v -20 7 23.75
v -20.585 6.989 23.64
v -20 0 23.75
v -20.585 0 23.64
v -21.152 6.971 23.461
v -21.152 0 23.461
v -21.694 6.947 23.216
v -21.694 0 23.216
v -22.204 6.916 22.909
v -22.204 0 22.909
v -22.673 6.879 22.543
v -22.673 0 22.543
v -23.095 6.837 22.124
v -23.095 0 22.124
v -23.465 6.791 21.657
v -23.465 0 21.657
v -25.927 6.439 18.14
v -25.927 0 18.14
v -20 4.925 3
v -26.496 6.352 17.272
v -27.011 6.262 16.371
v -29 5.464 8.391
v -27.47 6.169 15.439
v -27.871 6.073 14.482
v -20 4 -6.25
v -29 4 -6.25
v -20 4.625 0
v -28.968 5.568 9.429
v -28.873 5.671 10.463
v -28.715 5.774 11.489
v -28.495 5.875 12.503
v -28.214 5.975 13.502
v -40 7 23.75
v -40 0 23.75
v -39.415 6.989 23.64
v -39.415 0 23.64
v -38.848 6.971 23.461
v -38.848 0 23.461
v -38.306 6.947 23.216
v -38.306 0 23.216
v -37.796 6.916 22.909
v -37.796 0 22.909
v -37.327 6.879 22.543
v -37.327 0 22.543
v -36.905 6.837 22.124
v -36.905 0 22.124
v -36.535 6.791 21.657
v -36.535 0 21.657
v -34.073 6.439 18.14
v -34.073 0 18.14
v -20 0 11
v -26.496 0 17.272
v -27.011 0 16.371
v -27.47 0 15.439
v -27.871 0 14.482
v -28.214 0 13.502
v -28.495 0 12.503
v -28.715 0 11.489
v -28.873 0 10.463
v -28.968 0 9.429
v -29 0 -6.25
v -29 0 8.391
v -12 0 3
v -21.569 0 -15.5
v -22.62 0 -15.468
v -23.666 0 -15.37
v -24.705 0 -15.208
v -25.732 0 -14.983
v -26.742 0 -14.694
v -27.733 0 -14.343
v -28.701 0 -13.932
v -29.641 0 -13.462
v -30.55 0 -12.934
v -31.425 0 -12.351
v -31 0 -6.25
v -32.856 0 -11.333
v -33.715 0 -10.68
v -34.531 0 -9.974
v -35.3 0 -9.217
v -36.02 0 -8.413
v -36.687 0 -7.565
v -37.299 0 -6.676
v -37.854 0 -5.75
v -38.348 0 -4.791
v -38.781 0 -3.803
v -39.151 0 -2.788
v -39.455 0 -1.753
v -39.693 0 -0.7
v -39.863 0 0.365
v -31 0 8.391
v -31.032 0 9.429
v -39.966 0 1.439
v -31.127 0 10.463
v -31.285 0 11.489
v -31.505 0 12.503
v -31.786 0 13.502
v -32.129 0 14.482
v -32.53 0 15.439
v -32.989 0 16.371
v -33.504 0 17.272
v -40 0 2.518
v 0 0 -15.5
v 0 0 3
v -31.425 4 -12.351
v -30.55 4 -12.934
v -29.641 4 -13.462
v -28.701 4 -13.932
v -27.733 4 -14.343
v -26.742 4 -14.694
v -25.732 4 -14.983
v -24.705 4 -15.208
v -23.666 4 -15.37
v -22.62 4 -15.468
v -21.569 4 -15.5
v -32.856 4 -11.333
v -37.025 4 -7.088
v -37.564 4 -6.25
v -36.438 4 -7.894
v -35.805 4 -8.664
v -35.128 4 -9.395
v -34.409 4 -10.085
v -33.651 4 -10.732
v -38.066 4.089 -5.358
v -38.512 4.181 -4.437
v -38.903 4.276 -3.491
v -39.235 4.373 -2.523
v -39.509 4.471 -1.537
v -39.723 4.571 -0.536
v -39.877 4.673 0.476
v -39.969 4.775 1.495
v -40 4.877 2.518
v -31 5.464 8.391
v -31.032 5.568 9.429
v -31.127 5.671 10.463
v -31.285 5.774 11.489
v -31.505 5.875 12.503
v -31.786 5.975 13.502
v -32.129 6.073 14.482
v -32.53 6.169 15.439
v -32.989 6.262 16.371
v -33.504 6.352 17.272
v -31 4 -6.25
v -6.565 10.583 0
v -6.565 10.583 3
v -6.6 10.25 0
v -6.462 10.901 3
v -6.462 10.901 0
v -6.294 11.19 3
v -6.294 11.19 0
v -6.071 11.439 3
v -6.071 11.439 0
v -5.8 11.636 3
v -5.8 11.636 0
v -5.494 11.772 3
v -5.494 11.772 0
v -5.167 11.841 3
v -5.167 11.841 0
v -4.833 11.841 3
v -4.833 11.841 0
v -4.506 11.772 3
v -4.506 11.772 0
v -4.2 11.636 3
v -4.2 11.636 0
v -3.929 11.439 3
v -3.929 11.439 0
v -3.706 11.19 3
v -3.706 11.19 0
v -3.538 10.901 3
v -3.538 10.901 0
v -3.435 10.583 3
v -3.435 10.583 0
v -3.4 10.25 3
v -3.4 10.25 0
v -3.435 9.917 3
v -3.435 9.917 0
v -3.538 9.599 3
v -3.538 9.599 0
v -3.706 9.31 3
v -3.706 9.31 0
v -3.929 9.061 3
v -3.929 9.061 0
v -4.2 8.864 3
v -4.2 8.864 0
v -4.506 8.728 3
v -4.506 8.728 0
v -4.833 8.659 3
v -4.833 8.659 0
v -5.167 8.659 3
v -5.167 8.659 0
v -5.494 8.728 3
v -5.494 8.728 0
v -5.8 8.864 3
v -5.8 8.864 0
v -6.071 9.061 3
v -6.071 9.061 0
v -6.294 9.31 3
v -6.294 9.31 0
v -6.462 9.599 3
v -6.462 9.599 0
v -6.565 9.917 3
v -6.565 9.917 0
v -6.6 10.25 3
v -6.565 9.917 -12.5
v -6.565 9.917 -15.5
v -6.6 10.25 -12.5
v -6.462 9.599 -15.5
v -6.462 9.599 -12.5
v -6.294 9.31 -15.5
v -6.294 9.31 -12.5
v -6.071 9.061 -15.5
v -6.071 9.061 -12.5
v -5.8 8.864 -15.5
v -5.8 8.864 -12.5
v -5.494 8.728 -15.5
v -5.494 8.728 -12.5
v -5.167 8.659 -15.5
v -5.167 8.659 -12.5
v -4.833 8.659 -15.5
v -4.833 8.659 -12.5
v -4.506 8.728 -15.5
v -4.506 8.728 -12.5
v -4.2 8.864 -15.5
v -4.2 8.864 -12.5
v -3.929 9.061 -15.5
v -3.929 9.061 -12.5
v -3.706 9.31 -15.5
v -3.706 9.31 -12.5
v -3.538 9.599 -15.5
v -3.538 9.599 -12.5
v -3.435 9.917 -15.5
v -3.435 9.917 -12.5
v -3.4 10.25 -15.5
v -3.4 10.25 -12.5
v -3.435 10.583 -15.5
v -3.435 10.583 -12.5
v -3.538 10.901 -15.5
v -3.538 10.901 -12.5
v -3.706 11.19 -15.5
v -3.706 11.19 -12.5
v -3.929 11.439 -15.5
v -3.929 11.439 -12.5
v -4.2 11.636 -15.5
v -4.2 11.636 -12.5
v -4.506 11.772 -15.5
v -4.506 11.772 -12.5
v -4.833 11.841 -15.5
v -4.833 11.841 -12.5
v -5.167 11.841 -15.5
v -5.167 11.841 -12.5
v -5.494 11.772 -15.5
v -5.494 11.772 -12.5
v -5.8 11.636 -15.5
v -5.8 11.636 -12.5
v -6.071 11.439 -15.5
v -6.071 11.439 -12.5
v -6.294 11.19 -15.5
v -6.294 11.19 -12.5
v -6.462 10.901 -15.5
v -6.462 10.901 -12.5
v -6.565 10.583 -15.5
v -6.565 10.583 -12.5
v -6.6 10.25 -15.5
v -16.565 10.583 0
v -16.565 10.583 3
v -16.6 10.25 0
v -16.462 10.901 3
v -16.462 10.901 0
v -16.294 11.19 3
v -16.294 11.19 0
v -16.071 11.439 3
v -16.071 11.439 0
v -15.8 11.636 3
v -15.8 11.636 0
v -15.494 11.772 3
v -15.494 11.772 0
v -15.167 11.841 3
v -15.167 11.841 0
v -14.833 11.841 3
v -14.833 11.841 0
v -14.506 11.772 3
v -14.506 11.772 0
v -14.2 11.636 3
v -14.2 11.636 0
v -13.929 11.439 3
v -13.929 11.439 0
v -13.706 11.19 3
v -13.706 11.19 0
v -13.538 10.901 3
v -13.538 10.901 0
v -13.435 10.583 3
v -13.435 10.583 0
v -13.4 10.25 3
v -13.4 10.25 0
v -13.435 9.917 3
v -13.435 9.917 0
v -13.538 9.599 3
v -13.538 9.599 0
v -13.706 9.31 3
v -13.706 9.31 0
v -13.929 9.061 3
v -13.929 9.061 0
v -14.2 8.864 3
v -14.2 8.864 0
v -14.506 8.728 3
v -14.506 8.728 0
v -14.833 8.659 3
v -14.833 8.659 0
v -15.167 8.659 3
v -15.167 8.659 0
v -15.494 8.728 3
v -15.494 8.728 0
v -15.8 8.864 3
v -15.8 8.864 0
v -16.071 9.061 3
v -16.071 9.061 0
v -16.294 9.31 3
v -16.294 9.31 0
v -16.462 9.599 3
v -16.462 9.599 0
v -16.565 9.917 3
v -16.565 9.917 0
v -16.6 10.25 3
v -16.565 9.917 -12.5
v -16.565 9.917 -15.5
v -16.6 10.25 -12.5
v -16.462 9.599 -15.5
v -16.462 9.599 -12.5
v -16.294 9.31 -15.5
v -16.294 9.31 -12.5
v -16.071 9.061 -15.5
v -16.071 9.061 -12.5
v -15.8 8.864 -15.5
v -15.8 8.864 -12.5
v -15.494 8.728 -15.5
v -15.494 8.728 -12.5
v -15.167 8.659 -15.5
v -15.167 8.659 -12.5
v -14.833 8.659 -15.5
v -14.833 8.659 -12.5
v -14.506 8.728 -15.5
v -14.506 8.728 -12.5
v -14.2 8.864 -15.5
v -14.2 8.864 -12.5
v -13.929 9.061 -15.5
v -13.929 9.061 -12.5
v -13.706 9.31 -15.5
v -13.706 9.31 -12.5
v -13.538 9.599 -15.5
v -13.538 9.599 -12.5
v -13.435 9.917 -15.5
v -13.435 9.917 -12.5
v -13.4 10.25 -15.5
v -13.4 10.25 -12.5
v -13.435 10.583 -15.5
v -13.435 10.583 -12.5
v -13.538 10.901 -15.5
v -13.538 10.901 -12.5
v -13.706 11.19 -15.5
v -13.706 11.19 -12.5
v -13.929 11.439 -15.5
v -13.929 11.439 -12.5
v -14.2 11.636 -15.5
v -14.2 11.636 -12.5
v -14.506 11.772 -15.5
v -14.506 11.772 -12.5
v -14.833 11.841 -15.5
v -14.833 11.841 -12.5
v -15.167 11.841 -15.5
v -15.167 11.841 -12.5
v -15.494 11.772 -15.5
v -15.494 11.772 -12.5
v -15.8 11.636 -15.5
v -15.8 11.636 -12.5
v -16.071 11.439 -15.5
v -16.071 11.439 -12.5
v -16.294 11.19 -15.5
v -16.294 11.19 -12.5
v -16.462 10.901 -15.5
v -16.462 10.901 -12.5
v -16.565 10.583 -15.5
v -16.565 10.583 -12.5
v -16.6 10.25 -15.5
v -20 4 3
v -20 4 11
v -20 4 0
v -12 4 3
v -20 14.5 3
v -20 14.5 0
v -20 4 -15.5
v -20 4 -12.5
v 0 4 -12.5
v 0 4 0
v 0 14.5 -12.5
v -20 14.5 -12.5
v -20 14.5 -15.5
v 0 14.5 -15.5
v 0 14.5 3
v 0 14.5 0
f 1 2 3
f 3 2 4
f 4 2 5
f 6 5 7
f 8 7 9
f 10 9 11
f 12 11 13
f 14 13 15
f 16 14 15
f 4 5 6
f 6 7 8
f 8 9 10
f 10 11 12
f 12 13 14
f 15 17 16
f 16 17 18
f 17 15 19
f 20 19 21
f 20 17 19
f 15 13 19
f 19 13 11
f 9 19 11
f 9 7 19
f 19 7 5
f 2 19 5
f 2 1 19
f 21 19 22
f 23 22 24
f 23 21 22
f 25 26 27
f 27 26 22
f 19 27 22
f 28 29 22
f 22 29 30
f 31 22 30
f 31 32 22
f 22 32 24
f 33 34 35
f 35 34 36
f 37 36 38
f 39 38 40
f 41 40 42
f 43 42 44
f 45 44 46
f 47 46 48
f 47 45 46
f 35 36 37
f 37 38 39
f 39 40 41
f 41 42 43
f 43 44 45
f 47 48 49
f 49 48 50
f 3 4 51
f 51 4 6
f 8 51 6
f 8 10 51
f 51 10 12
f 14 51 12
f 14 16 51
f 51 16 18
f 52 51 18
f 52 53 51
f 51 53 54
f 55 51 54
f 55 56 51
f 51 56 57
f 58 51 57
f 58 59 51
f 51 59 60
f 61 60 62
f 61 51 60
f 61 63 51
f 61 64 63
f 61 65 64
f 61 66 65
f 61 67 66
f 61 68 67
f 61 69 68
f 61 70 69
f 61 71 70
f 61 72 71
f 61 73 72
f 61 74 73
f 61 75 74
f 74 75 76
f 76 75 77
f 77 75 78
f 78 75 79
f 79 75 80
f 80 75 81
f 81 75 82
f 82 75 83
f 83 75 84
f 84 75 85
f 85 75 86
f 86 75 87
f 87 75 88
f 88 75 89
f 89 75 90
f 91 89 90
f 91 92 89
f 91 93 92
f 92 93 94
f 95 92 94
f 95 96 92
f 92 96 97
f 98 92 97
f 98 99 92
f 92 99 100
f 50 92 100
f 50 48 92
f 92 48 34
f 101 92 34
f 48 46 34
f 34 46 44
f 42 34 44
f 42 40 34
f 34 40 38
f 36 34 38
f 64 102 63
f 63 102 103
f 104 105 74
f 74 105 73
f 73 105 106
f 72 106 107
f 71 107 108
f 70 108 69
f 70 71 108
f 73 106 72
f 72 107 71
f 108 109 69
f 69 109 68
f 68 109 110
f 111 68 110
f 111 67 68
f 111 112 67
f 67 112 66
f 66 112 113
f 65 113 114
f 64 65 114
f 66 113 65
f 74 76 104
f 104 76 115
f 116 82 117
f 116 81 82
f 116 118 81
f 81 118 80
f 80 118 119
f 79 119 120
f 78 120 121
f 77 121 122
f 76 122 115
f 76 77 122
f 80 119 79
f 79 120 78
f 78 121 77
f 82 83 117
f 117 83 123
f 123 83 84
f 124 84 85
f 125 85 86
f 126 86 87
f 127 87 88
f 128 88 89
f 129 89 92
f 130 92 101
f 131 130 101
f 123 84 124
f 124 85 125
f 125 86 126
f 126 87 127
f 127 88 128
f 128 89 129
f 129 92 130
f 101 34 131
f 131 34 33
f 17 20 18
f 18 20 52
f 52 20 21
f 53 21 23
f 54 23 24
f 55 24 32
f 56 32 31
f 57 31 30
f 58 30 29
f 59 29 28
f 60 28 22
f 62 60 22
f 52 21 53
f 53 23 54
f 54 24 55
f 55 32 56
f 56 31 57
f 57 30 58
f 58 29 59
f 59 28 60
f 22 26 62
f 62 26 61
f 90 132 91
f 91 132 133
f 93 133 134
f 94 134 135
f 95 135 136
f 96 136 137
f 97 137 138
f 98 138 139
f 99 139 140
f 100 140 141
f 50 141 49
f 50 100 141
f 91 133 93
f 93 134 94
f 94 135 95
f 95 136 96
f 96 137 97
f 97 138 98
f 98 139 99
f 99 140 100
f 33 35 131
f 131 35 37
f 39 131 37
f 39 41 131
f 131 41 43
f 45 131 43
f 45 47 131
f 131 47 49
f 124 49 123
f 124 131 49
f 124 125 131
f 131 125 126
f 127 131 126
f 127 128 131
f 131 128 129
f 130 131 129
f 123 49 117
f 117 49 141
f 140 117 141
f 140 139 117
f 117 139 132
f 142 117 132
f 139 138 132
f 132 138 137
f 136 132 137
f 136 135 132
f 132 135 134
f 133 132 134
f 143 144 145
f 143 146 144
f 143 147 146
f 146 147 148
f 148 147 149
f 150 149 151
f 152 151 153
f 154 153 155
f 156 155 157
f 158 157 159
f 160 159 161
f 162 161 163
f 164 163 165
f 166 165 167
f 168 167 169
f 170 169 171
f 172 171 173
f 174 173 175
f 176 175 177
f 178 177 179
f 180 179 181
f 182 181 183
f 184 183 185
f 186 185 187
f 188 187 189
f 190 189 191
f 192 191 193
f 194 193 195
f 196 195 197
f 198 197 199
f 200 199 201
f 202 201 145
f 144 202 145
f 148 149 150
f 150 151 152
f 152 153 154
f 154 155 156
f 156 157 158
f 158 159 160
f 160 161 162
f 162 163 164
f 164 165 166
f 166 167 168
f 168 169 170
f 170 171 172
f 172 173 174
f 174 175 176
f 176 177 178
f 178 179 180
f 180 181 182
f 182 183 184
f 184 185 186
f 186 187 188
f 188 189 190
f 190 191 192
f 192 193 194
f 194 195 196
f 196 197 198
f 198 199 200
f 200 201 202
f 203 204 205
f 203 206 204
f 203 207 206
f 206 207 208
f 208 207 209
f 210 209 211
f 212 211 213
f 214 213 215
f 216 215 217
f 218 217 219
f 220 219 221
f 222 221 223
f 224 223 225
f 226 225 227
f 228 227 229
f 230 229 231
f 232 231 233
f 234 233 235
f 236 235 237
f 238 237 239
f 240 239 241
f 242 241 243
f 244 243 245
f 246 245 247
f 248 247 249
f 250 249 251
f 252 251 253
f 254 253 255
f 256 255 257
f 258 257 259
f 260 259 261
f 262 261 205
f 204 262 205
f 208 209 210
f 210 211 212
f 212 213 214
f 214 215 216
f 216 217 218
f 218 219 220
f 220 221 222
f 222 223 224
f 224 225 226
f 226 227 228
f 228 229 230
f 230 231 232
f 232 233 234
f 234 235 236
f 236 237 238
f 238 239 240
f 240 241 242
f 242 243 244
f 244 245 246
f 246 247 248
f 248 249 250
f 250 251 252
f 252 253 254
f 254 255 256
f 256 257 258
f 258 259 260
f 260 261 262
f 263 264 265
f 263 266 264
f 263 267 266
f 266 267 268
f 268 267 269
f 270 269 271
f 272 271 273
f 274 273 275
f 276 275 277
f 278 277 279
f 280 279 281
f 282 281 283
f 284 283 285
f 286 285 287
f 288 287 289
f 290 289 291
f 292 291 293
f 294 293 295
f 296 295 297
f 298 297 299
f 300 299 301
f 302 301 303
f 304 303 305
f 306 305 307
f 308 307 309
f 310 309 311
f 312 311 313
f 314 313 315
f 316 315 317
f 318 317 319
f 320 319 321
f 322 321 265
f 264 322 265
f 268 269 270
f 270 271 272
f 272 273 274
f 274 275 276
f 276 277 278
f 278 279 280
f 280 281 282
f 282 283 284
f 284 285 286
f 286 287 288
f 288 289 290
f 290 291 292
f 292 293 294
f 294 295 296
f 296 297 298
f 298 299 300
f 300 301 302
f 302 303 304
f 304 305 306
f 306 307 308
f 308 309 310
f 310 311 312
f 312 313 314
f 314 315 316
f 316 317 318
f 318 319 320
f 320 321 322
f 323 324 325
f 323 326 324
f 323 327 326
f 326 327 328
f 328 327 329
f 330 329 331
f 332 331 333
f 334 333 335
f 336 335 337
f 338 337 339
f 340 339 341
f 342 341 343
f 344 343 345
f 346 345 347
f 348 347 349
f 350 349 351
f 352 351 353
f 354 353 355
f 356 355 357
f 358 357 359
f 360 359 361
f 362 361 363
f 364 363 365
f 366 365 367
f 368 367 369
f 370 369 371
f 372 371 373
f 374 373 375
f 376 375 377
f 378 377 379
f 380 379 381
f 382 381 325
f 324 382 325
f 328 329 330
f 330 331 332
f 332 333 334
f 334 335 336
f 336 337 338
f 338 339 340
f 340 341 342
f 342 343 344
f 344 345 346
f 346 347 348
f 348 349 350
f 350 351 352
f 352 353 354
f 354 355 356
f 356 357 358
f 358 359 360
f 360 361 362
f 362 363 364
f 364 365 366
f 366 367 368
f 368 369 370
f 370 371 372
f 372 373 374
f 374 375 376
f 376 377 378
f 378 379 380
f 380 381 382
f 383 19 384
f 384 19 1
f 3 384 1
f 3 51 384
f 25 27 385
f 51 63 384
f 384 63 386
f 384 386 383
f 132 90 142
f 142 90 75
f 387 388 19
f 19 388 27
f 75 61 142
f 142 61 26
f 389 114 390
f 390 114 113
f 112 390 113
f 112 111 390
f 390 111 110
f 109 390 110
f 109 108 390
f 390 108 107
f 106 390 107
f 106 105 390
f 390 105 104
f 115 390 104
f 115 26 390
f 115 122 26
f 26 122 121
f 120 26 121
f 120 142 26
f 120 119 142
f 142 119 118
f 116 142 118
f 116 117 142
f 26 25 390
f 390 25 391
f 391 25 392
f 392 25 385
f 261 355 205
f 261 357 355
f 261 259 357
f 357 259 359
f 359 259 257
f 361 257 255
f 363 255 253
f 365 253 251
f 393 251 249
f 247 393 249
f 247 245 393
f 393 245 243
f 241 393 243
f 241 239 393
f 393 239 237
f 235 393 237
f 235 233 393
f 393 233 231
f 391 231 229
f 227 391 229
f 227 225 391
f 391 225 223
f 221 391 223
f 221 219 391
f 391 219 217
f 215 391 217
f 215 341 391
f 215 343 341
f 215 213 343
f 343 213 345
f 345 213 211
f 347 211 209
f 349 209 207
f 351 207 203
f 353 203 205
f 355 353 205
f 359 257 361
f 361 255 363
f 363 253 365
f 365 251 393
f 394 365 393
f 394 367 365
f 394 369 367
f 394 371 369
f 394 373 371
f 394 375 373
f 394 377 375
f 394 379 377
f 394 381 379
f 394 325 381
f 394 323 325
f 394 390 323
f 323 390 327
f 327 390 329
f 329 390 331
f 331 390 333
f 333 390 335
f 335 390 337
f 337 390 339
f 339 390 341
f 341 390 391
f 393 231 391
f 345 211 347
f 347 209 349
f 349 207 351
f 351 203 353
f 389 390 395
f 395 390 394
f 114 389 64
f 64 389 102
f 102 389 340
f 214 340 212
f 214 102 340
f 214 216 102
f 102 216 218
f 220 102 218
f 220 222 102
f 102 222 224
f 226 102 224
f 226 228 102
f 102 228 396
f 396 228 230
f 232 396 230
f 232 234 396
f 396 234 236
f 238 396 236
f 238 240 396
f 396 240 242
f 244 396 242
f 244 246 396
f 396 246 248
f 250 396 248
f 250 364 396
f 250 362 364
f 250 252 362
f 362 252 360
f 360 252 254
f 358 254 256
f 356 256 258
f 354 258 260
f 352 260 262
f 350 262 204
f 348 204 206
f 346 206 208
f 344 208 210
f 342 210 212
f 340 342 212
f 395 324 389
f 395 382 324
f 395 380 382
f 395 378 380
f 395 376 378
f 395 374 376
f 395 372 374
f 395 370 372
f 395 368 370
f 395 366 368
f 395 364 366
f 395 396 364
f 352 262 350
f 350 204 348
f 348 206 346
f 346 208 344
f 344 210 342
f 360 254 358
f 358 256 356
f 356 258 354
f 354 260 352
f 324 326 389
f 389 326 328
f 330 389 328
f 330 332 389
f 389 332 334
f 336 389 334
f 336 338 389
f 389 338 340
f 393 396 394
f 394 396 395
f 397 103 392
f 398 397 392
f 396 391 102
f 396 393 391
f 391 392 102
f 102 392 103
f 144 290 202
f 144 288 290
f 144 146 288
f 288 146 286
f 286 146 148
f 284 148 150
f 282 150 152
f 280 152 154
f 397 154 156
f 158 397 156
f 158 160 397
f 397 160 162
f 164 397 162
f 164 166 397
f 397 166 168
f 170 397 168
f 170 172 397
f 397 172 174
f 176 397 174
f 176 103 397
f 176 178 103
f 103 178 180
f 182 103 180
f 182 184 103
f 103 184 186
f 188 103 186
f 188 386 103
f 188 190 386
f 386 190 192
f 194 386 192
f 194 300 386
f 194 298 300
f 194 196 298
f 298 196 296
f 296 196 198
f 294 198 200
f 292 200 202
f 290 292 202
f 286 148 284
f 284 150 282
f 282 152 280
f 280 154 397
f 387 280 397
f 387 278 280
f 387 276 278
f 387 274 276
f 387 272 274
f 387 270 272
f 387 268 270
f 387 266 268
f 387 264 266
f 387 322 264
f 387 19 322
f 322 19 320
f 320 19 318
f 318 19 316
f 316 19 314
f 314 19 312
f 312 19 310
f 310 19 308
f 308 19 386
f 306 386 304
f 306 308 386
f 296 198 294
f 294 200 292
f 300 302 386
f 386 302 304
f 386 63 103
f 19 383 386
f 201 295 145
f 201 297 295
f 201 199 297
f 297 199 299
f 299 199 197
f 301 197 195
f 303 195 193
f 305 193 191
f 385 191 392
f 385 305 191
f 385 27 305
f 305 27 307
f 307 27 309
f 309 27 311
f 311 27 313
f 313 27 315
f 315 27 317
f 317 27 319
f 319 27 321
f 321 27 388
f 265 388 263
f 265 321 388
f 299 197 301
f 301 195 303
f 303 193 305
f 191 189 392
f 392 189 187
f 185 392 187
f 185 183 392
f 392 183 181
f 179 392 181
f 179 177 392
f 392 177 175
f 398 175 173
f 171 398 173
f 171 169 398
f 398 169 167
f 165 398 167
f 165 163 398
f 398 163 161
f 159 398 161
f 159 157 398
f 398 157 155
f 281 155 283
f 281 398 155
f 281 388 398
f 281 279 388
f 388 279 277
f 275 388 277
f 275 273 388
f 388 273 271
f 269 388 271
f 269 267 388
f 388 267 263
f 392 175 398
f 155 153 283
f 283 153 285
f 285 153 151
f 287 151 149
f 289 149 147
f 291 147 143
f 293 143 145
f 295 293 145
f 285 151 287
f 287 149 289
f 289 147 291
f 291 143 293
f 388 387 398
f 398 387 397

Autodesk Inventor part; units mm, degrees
ref_plane "YZ Plane" through (0, 0, 0) normal (1, 0, 0) x (0, 1, 0)
ref_plane "XZ Plane" through (0, 0, 0) normal (0, 1, 0) x (-1, 0, 0)
ref_plane "XY Plane" through (0, 0, 0) normal (0, 0, 1) x (1, 0, 0)
sketch "Sketch1" plane through (0, 0, 0) normal (0, 1, 0) x (-1, 0, 0)
  line L0 (0, 0) -> (0, -12.5)
  line L1 (0, -12.5) -> (20, -12.5)
  line L2 (20, -12.5) -> (20, -15.5)
  line L3 (20, -15.5) -> (0, -15.5)
  line L4 (0, -15.5) -> (0, -12.5)
  line L5 (0, 0) -> (0, 3)
  line L6 (0, 3) -> (20, 3)
  line L7 (20, 3) -> (20, 0)
  line L8 (20, 0) -> (0, 0)
  line L9 (20, 0) -> (20, -12.5)
  line L10 (20, -6.25) -> (30, -6.25)
  line L11 (30, -6.25) -> (40, -6.25)
  line L12 (40, -6.25) -> (40, 23.75)
  line L13 (20, -6.25) -> (20, 23.75)
  line L14 (20, 23.75) -> (22, 23.75)
  line L15 (40, 23.75) -> (38, 23.75)
  line L16 (29, 13.75) -> (22, 23.75)
  line L17 (31, 13.75) -> (38, 23.75)
  line L18 (31, 13.75) -> (31, -6.25)
  line L19 (29, 13.75) -> (29, -6.25)
  line L20 (20, -15.5) -> (27, -15.5)
  line L21 (27, -15.5) -> (40, -6.25)
  line L22 (20, 3) -> (12, 3)
  line L23 (20, 3) -> (20, 11)
  line L24 (20, 11) -> (12, 3)
  line L25 (20, 3) -> (12, 3)
  line L26 (20, 3) -> (20, 11)
  dimension "d0" = 12.5
  dimension "d1" = 20
  dimension "d2" = 3
  dimension "d3" = 3
  dimension "d4" = 20
  dimension "d5" = 10
  dimension "d6" = 10
  dimension "d7" = 30
  dimension "d8" = 2
  dimension "d9" = 2
  dimension "d13" = 7
  dimension "d22" = 8
  dimension "d23" = 8
extrude "Extrusion1" add sketch "Sketch1" along normal blind 14.5 contours L5 L6 L7 L8 | L1 L2 L3 L4
extrude "Extrusion2" add sketch "Sketch1" along normal blind 4 contours L8 L9 L1 L0 | L9 L10 L11 L21 L20 L2
extrude "Extrusion3" add sketch "Sketch1" along normal blind 7 contours L7 L13 L14 L16 L19 L10 L9 | L11 L18 L17 L15 L12
sketch "Sketch2" plane through (-40, 0, -6.25) normal (-1, 0, 0) x (0, 0, 1)
  line L0 (6.25, 4) -> (-6.25, 4) projected
  line L1 (0, 4) -> (30, 7)
  line L2 (30, 7) -> (30, 0)
  line L3 (30, 0) -> (30, 7) projected
  line L4 (30, 0) -> (0, 0)
  line L5 (9.25, 0) -> (-9.25, 0) projected
  line L6 (0, 4) -> (0, 0)
  line L7 (0, 0) -> (0, 4) projected
  line L8 (0, 0) -> (0, 4)
  line L9 (0, 4) -> (0, 7) projected
  line L10 (0, 4) -> (0, 7)
  line L11 (0, 7) -> (30, 7)
  point P0 (6.25, 0)
extrude "Extrusion5" add sketch "Sketch1" along normal blind 4 contours L24 L13 L6
extrude "Extrusion6" cut sketch "Sketch2" against normal blind 20 contours L9 L11 L1
sketch "Sketch3" plane through (0, 14.5, -15.5) normal (0, 0, -1) x (-1, 0, 0)
  line L0 (20, 0) -> (0, 0)
  line L1 (0, 0) -> (20, 0) projected
  line L2 (10, 0) -> (20, 0)
  line L3 (15, 0) -> (15, -10.5)
  line L4 (20, -10.5) -> (12, -10.5) projected
  line L5 (15, -10.5) -> (15, -4.25)
  line L6 (10, 0) -> (0, 0)
  line L7 (5, 0) -> (5, -10.5)
  line L8 (0, -10.5) -> (20, -10.5) projected
  line L9 (5, -10.5) -> (5, -4.25)
  circle A0 centre (15, -4.25) radius 1.6
  circle A1 centre (5, -4.25) radius 1.6
  point P0 (0, -14.5)
  dimension "d28" = 6.25
  dimension "d29" = 6.25
  dimension "d30" = 3.2
  dimension "d31" = 3.2
extrude "Extrusion7" cut sketch "Sketch3" against normal blind 20 contours A0 L3 | L3 A0 | A1 L7 | L7 A1
fillet "Fillet1" radius 17 4 edges at (-31, 3, 13.75) (-29, 3, 13.75) (-27, 2, -15.5) (-40, 2, -6.25)
fillet "Fillet2" radius 5 2 edges at (-38, 3.5, 23.75) (-22, 3.5, 23.75)
properties part number "clip"
